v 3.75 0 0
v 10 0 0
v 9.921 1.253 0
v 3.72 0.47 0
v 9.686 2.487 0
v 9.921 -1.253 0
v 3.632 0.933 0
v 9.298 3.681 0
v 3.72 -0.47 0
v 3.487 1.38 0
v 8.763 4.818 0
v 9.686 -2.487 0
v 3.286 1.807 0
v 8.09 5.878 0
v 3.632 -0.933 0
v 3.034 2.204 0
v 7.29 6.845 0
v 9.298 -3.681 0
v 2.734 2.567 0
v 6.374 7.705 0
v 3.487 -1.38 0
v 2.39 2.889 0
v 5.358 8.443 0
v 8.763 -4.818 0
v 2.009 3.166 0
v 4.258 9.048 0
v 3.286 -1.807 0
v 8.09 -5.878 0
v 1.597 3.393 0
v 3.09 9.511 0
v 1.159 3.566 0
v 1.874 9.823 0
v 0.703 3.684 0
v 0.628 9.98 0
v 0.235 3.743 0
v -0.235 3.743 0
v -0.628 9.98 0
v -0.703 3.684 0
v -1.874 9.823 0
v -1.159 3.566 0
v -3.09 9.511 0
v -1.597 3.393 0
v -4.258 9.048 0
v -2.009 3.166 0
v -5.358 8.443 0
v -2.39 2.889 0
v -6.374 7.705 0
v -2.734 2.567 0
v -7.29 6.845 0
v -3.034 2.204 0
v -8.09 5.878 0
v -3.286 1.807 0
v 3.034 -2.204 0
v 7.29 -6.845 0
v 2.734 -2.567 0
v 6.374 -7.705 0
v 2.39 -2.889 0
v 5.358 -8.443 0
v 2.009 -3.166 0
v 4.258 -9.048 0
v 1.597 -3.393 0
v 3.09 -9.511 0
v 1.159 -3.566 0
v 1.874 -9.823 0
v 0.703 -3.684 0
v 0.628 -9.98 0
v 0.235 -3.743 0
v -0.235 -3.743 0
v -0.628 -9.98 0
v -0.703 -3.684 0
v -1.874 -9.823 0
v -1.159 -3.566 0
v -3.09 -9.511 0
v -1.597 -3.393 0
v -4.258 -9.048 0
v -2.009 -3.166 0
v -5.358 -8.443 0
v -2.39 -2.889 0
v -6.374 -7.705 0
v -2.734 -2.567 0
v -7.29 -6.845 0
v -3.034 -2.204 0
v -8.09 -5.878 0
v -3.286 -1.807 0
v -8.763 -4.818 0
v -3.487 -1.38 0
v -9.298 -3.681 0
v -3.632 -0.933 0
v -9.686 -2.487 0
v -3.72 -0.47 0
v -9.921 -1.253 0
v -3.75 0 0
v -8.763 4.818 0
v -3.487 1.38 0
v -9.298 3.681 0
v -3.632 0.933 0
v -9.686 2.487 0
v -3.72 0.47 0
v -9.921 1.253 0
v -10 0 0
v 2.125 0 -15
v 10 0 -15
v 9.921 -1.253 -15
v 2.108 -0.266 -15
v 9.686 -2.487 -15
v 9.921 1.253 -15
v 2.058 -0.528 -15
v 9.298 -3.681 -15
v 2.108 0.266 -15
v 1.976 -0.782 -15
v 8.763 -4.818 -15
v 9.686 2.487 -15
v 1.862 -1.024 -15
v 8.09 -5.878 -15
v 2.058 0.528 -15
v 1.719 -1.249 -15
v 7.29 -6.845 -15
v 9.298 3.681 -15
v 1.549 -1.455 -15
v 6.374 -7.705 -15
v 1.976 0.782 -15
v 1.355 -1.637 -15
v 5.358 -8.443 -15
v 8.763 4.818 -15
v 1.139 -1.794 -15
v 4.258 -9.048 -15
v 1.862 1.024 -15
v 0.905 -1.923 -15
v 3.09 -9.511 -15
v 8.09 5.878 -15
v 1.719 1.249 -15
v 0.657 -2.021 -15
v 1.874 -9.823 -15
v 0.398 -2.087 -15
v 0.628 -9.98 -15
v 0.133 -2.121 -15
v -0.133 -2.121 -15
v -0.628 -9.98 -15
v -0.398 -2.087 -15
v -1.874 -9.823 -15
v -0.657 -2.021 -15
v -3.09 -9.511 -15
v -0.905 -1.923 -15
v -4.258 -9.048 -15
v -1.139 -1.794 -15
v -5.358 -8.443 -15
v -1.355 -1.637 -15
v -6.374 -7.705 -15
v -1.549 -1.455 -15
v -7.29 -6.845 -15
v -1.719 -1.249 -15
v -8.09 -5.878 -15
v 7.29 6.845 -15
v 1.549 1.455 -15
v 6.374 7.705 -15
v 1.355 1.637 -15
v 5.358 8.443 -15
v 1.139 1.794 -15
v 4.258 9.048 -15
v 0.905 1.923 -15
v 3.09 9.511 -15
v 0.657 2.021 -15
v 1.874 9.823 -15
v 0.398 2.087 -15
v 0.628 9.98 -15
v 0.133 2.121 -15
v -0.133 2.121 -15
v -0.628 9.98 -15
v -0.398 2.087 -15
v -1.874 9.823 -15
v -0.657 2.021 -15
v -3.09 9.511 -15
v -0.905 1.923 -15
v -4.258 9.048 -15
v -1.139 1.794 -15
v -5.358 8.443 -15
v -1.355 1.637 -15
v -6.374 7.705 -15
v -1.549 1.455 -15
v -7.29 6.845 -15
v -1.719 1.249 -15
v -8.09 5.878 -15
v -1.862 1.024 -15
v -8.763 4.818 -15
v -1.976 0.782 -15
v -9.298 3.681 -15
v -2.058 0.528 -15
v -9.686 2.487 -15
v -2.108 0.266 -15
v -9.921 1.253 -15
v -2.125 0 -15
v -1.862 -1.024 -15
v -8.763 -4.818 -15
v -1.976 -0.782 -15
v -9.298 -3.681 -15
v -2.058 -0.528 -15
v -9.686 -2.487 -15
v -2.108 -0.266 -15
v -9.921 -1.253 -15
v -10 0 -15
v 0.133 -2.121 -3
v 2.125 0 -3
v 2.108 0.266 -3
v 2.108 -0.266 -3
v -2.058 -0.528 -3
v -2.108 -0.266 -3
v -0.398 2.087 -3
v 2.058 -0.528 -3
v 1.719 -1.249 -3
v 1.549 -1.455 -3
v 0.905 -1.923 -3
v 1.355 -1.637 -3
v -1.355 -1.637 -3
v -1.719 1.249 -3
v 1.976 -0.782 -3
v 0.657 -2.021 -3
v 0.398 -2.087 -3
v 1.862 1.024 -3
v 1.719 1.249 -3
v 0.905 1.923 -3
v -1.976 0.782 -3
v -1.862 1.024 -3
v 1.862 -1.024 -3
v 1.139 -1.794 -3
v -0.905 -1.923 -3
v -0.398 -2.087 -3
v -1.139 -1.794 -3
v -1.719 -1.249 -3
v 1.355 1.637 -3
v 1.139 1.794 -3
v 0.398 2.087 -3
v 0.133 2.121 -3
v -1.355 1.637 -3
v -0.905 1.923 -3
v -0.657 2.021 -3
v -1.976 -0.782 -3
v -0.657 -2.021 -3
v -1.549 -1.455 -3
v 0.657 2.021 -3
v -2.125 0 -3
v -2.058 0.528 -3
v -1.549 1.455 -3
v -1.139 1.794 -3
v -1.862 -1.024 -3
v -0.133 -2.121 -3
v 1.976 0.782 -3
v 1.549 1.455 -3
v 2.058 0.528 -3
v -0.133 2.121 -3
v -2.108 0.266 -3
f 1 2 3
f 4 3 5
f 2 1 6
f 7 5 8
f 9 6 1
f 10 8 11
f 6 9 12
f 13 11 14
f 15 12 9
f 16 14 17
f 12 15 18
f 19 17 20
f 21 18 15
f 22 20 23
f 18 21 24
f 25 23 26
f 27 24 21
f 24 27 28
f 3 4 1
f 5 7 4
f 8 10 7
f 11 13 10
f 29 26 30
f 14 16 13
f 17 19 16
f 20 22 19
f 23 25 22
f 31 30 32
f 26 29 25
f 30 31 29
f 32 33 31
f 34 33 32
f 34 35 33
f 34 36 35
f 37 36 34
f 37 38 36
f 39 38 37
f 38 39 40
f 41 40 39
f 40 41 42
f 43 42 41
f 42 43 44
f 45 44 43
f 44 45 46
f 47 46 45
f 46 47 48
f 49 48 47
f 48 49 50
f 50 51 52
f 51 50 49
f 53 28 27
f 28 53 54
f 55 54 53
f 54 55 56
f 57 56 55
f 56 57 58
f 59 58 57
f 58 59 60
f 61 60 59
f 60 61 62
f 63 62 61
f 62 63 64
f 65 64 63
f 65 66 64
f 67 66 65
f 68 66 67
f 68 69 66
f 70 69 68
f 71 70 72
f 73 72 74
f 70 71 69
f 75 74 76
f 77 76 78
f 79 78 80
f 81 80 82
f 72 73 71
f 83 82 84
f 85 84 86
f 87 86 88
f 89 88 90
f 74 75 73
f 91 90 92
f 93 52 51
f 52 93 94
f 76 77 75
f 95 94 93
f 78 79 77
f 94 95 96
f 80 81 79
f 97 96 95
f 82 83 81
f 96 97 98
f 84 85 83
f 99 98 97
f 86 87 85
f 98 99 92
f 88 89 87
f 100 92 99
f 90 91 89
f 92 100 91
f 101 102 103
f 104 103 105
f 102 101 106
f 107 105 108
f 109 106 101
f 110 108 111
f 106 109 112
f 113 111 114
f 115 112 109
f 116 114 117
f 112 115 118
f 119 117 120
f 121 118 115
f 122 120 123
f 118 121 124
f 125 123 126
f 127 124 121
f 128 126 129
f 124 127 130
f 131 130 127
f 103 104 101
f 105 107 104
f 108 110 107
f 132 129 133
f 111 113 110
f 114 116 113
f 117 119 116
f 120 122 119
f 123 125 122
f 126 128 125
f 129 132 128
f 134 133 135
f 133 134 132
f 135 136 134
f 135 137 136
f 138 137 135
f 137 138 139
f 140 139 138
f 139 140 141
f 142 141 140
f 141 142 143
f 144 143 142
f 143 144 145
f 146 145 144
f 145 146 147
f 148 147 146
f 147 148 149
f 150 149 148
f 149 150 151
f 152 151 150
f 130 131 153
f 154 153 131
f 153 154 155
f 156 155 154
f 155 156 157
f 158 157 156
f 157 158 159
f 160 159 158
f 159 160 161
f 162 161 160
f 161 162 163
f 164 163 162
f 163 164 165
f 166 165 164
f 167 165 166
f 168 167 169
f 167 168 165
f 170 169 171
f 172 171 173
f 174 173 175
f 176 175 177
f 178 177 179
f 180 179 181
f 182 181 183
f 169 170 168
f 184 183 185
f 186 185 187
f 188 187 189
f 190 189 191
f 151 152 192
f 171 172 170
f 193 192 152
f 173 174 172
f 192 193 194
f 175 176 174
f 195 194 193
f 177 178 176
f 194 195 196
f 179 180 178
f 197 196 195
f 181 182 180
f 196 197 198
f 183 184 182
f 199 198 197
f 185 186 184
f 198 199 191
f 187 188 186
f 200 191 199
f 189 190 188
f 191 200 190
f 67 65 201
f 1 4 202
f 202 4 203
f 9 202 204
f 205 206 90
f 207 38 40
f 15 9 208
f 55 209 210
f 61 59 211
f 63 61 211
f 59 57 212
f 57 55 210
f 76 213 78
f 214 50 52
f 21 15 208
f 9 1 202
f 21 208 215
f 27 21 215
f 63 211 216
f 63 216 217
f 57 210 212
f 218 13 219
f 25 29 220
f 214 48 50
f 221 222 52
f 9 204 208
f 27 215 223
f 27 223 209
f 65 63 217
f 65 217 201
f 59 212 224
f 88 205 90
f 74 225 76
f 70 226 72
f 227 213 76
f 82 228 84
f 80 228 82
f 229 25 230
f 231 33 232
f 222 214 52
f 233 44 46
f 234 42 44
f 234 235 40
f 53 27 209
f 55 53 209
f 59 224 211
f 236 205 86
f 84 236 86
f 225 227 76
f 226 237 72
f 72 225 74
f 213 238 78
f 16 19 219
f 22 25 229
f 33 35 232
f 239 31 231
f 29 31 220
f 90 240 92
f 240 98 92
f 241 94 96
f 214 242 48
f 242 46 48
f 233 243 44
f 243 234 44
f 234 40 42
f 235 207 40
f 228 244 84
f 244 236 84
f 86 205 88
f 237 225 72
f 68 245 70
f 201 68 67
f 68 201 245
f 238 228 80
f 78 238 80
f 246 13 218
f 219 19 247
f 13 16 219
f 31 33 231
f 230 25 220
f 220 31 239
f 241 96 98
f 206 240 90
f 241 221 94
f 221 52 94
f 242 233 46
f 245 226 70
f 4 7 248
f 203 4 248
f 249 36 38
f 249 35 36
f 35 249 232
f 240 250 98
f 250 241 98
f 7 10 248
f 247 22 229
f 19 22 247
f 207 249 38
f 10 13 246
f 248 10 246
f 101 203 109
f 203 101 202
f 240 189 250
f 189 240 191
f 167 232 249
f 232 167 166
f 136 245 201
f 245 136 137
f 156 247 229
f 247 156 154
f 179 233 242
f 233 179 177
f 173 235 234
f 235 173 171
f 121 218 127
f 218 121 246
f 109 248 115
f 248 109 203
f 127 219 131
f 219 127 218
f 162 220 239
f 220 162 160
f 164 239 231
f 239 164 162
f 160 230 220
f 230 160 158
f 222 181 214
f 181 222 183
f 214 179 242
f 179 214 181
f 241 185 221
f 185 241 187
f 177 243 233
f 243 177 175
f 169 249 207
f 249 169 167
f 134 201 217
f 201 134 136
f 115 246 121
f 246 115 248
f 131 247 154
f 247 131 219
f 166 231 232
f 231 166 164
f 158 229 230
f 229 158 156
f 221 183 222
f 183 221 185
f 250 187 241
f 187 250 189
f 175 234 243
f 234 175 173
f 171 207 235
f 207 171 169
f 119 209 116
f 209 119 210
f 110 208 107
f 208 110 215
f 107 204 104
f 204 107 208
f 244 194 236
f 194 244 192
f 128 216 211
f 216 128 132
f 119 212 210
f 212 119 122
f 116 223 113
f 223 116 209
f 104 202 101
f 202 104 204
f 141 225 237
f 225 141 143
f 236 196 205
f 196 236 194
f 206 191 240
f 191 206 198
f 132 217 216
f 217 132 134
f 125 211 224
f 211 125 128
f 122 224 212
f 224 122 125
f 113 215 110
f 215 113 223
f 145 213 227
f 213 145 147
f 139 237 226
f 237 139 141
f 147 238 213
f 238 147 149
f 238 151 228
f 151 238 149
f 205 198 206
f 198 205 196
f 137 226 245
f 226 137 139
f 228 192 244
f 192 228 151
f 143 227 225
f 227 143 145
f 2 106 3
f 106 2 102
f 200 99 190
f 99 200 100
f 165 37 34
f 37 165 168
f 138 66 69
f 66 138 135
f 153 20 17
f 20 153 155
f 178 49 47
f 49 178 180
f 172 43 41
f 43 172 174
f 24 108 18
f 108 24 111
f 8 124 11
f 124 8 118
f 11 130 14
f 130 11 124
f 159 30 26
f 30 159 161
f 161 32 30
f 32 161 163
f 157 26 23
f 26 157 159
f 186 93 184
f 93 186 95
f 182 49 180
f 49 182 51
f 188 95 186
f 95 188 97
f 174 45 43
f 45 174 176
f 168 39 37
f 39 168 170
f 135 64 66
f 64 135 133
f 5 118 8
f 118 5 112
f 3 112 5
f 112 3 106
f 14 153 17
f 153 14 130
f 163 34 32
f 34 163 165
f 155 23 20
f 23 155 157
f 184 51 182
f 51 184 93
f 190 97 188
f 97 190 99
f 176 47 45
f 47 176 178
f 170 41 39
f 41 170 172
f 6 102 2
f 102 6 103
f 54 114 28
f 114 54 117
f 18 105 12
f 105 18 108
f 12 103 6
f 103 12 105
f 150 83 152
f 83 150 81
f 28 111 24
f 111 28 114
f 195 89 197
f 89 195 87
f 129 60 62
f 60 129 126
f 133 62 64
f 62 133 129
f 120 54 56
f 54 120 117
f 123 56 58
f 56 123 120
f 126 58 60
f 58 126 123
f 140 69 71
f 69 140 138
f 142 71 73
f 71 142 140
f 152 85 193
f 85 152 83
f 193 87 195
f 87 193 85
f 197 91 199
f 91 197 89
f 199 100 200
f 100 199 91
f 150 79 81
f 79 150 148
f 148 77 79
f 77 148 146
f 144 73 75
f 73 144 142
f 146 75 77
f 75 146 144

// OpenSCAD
$fn = 50;


difference() {
	union() {
		translate(v = [0, 0, -15.0000000000]) {
			cylinder(h = 15, r = 10.0000000000);
		}
		cylinder(h = 0, r = 19.0000000000);
	}
	union() {
		translate(v = [0, 0, 0]) {
			rotate(a = [0, 0, 0]) {
				difference() {
					union() {
						#translate(v = [0, 0, -15.0000000000]) {
							cylinder(h = 15, r = 2.0000000000);
						}
						#translate(v = [0, 0, -3]) {
							cylinder(h = 3, r = 10.0000000000, r1 = 2.1250000000, r2 = 3.7500000000);
						}
						#translate(v = [0, 0, -15.0000000000]) {
							cylinder(h = 15, r = 2.1250000000);
						}
						#translate(v = [0, 0, -15.0000000000]) {
							cylinder(h = 15, r = 2.0000000000);
						}
					}
					union();
				}
			}
		}
	}
}
